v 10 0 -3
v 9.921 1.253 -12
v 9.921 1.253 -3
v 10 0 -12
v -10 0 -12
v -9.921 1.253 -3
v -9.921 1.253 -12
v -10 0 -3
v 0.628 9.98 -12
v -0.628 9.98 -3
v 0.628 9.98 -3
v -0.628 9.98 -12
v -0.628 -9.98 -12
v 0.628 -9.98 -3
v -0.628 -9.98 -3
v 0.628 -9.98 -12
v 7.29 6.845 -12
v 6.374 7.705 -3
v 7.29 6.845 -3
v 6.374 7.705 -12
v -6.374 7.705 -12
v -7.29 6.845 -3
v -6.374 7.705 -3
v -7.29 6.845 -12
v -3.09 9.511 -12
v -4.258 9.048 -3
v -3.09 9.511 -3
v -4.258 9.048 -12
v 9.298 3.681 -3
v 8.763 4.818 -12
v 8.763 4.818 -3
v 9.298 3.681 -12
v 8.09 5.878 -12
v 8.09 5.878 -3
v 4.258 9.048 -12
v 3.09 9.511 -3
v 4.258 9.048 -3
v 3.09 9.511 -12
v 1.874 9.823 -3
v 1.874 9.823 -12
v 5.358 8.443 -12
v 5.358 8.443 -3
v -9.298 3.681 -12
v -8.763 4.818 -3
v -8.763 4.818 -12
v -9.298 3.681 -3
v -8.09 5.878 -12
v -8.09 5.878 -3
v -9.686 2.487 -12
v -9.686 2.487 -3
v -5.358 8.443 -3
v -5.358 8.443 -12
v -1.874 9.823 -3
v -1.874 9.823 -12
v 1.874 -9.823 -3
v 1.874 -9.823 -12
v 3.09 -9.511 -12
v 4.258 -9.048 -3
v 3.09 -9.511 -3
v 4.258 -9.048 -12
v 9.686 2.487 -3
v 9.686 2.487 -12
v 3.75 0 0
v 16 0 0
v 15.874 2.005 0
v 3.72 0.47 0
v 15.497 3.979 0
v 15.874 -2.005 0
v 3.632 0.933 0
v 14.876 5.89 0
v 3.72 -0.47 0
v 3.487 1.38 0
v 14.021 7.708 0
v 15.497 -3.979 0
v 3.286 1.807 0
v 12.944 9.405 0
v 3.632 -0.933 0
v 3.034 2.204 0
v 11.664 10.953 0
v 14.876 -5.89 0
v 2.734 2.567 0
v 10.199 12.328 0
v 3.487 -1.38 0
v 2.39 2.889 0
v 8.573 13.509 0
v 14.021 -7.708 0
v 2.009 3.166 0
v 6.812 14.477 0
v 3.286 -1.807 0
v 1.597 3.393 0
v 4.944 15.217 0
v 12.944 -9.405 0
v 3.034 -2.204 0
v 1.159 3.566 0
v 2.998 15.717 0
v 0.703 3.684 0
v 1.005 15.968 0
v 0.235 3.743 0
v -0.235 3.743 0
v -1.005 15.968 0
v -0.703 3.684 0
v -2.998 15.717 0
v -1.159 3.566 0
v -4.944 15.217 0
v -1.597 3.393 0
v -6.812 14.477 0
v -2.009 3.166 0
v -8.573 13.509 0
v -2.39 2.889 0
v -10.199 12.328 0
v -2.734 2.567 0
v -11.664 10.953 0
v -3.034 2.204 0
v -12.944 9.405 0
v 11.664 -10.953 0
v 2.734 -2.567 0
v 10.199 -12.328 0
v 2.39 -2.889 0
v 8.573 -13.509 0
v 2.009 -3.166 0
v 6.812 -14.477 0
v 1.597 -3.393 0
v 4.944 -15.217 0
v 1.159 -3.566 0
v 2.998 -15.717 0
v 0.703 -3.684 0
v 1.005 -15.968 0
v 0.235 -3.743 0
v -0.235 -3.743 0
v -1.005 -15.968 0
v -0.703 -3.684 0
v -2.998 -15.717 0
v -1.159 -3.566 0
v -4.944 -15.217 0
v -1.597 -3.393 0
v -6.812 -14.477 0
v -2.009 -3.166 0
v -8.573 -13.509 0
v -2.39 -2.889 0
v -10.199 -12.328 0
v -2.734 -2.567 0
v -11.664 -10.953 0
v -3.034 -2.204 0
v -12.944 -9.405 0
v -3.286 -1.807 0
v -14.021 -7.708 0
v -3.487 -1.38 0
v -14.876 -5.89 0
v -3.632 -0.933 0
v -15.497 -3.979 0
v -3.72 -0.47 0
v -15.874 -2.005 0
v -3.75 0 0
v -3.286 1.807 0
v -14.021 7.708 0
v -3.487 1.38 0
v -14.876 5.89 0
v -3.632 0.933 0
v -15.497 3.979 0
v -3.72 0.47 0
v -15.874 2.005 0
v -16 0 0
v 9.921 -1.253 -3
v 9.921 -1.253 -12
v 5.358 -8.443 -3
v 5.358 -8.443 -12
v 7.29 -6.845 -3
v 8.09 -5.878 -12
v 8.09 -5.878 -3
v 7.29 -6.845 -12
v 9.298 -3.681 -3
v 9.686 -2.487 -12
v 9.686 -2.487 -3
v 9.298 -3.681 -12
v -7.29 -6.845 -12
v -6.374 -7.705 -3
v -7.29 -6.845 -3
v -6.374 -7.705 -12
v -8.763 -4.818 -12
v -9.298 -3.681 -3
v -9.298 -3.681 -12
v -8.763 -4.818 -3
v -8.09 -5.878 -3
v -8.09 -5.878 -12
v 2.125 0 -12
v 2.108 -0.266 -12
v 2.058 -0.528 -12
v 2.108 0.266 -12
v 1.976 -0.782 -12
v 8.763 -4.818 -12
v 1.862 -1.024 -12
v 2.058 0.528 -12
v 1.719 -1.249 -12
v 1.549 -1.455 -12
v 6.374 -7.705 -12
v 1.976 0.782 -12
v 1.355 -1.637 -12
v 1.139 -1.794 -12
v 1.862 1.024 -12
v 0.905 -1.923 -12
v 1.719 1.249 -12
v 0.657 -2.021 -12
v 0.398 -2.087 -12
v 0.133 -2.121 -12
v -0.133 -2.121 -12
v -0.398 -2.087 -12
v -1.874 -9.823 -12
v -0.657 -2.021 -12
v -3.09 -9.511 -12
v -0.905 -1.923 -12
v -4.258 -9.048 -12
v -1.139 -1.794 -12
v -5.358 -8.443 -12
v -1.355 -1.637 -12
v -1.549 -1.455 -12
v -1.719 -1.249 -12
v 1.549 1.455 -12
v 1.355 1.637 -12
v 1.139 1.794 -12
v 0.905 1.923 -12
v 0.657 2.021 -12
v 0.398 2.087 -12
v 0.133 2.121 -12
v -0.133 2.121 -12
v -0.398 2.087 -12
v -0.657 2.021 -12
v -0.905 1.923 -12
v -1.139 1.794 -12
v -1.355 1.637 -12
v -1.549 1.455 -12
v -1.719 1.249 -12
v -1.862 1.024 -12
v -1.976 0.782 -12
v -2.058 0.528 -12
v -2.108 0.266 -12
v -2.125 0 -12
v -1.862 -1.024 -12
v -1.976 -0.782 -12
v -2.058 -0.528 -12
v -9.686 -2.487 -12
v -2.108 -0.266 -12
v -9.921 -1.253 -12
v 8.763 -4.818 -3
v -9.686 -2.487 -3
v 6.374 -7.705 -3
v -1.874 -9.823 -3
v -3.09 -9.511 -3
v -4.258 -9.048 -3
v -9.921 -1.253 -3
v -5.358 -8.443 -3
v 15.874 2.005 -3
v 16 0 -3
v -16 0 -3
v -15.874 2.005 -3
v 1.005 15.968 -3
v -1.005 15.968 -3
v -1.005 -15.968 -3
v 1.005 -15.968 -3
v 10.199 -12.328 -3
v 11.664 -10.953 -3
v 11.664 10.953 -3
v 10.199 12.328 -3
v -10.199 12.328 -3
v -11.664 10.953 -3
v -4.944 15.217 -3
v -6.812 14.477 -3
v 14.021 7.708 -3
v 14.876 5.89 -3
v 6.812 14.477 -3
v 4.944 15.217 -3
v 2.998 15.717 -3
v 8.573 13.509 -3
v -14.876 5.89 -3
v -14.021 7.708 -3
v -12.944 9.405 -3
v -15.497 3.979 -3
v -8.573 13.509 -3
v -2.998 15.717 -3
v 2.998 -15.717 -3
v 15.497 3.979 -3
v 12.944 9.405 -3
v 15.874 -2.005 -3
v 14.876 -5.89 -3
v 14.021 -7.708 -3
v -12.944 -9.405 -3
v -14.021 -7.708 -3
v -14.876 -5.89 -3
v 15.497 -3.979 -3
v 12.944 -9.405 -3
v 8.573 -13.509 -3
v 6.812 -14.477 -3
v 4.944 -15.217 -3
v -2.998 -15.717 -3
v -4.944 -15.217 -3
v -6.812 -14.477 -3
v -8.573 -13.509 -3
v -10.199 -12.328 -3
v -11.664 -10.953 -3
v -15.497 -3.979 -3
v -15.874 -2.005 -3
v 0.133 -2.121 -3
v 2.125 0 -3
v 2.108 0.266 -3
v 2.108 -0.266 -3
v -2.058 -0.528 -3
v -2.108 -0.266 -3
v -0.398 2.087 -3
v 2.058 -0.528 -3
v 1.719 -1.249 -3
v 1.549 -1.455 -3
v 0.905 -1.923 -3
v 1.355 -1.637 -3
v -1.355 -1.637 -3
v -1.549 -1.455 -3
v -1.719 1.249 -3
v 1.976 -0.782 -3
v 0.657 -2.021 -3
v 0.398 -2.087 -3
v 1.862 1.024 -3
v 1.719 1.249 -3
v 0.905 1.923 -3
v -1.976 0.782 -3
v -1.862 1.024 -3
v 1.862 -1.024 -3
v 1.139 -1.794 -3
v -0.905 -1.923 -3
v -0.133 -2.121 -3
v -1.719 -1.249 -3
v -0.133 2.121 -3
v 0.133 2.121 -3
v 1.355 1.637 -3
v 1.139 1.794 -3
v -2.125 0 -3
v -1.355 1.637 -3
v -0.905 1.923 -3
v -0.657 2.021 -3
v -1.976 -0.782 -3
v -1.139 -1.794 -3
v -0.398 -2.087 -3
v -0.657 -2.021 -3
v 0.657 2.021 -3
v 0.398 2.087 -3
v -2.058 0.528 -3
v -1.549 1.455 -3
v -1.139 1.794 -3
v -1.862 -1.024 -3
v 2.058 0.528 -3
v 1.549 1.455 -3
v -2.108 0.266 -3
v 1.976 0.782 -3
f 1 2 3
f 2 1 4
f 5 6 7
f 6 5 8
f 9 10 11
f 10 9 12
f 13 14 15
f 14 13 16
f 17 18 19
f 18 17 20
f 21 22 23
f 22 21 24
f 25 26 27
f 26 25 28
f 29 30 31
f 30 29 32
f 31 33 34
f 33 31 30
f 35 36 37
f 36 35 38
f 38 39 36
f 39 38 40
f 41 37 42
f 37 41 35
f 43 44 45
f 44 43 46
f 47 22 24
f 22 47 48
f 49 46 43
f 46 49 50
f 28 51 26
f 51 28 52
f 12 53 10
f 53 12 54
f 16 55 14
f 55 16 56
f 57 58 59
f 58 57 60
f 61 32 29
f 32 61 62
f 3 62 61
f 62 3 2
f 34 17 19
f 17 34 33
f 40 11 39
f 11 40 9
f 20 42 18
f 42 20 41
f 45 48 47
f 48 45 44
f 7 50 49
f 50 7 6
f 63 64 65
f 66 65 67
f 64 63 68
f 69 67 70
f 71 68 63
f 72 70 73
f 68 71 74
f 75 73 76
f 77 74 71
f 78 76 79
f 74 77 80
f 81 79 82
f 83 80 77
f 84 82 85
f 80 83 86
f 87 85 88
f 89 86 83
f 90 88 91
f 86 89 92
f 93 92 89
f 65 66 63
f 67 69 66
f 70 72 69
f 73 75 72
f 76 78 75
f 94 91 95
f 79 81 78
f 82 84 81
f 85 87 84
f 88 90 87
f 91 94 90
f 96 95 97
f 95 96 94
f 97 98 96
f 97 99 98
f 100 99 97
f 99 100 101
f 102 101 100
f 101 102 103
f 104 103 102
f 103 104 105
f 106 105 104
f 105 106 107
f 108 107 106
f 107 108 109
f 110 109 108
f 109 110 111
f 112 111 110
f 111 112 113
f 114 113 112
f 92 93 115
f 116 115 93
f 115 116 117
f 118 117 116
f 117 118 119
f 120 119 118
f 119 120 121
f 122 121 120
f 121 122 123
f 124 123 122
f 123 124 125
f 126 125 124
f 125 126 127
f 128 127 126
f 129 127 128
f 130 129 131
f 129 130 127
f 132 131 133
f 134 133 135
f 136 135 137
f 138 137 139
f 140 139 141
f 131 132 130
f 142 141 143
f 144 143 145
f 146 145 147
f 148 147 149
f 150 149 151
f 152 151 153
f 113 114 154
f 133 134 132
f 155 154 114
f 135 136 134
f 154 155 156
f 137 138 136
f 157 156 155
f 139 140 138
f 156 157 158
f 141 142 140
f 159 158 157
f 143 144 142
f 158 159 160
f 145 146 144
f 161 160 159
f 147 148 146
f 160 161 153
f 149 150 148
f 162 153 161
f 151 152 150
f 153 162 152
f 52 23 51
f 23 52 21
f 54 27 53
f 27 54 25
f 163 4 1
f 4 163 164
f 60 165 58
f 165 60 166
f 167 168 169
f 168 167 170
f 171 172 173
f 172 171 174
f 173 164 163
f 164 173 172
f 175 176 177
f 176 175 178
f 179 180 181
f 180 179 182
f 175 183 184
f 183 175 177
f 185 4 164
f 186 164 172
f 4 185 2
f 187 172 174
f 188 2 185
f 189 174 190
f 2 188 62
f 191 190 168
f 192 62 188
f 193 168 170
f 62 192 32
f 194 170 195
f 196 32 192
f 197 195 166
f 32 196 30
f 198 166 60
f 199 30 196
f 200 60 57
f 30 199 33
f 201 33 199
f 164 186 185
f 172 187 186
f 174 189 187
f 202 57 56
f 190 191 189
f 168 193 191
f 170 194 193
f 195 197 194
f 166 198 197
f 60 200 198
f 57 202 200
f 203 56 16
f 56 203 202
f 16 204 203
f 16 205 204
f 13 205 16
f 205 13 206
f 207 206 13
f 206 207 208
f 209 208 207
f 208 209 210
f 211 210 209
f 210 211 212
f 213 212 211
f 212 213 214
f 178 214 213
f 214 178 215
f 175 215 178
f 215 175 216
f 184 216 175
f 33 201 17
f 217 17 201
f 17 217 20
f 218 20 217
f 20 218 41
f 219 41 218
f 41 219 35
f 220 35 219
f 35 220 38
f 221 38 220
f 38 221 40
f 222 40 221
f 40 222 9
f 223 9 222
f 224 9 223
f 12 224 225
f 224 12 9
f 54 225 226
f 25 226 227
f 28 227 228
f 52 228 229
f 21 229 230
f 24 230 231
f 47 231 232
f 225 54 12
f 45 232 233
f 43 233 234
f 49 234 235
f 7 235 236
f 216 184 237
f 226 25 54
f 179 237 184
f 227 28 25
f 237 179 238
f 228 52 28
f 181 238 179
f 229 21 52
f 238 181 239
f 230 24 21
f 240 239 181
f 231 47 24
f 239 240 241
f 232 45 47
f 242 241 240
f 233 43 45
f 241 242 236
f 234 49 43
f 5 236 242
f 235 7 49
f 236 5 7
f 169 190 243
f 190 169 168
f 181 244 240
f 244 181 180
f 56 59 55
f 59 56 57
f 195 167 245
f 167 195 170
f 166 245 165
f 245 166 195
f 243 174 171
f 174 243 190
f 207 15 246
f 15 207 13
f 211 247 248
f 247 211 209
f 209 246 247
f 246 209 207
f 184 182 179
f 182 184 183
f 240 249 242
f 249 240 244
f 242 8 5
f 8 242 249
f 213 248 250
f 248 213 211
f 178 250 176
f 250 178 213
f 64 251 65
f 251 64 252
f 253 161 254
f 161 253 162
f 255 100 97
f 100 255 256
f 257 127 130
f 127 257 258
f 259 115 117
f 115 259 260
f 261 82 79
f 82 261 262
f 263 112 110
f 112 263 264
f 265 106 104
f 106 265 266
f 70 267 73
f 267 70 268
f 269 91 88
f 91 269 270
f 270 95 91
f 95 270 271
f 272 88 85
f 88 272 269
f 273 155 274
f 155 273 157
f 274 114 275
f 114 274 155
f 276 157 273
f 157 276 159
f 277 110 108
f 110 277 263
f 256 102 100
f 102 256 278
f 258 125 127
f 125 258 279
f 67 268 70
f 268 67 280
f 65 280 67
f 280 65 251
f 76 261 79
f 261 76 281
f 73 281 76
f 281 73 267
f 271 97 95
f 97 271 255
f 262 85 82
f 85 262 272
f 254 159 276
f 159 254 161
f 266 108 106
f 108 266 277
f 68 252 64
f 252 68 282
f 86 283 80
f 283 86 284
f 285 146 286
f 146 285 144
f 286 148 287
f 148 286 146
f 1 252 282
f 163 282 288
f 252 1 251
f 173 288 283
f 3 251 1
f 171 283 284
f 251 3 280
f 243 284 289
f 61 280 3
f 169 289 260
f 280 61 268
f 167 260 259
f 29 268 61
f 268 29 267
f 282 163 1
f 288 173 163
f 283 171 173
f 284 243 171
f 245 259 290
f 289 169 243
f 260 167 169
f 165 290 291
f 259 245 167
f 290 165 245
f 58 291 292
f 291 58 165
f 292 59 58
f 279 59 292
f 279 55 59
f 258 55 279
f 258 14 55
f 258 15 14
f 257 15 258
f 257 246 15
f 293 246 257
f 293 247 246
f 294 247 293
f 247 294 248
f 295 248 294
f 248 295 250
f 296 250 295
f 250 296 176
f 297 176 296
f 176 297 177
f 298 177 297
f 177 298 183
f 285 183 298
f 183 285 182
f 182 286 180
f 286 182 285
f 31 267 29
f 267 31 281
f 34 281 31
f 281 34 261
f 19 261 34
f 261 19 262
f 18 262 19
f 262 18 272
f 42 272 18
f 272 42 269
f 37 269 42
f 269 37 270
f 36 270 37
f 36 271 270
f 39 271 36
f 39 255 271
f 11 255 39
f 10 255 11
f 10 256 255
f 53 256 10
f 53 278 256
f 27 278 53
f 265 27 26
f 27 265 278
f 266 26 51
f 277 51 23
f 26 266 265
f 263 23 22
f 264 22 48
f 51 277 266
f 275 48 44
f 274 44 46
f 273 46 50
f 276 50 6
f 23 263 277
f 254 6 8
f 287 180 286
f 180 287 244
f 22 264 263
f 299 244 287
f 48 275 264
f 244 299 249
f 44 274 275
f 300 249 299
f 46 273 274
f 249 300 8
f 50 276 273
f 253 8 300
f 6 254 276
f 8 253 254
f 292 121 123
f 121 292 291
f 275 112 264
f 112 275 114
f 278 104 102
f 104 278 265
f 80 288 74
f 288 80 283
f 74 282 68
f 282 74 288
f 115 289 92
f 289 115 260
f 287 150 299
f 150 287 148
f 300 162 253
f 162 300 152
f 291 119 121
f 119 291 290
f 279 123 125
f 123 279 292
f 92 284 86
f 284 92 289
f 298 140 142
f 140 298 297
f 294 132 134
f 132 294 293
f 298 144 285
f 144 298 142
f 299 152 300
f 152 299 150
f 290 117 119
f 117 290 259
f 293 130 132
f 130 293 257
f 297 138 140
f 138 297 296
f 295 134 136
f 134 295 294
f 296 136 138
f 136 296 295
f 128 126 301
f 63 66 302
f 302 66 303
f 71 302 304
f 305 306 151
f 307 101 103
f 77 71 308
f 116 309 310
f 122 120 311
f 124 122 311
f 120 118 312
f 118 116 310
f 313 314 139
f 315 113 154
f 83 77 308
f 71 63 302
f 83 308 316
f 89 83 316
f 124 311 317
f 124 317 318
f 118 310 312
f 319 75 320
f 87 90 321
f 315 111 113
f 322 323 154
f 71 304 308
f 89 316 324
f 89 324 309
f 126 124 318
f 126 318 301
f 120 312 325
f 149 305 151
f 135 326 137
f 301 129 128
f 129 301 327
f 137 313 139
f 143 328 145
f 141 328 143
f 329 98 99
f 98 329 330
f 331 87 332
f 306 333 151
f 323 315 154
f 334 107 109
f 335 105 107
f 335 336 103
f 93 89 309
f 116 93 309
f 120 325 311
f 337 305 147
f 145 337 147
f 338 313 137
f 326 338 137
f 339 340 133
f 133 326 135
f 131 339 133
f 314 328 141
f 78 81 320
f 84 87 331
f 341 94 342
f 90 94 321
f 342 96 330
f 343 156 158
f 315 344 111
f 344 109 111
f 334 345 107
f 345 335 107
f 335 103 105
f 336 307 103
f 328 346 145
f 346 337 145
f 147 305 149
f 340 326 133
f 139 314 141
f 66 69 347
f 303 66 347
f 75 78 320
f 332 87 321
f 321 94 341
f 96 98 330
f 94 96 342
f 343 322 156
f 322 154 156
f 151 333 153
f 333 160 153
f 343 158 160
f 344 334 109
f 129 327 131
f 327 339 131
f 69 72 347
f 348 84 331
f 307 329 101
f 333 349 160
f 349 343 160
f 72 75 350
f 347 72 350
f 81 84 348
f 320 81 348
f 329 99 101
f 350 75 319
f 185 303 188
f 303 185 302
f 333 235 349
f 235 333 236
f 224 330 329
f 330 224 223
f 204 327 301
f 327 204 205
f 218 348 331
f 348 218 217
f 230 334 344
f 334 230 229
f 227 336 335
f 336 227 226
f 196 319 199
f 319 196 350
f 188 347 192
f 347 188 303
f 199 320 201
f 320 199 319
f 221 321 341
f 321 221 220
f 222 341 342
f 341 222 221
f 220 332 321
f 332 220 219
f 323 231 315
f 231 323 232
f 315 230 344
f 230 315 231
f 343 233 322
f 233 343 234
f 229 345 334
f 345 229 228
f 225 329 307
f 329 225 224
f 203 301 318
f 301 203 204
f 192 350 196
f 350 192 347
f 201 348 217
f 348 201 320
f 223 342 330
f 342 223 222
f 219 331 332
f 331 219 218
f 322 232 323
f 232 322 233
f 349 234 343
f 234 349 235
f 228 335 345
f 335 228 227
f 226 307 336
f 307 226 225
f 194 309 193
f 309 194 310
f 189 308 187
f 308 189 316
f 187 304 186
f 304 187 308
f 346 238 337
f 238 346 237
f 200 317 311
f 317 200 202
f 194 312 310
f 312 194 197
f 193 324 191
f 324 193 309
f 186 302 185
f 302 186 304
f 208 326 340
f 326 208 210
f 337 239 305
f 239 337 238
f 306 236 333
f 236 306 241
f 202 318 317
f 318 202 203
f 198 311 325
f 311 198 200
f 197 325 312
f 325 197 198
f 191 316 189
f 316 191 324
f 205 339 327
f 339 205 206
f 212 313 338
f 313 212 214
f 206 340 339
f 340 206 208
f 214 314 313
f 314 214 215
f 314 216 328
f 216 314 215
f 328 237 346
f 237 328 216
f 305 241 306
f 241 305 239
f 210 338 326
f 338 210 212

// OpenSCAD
$fn = 50;


difference() {
	union() {
		translate(v = [0, 0, -12.0000000000]) {
			cylinder(h = 12, r = 10.0000000000);
		}
		translate(v = [0, 0, -3.0000000000]) {
			cylinder(h = 3, r = 16.0000000000);
		}
	}
	union() {
		translate(v = [0, 0, 0]) {
			rotate(a = [0, 0, 0]) {
				difference() {
					union() {
						#translate(v = [0, 0, -12.0000000000]) {
							cylinder(h = 12, r = 2.0000000000);
						}
						#translate(v = [0, 0, -3]) {
							cylinder(h = 3, r = 10.0000000000, r1 = 2.1250000000, r2 = 3.7500000000);
						}
						#translate(v = [0, 0, -12.0000000000]) {
							cylinder(h = 12, r = 2.1250000000);
						}
						#translate(v = [0, 0, -12.0000000000]) {
							cylinder(h = 12, r = 2.0000000000);
						}
					}
					union();
				}
			}
		}
	}
}
